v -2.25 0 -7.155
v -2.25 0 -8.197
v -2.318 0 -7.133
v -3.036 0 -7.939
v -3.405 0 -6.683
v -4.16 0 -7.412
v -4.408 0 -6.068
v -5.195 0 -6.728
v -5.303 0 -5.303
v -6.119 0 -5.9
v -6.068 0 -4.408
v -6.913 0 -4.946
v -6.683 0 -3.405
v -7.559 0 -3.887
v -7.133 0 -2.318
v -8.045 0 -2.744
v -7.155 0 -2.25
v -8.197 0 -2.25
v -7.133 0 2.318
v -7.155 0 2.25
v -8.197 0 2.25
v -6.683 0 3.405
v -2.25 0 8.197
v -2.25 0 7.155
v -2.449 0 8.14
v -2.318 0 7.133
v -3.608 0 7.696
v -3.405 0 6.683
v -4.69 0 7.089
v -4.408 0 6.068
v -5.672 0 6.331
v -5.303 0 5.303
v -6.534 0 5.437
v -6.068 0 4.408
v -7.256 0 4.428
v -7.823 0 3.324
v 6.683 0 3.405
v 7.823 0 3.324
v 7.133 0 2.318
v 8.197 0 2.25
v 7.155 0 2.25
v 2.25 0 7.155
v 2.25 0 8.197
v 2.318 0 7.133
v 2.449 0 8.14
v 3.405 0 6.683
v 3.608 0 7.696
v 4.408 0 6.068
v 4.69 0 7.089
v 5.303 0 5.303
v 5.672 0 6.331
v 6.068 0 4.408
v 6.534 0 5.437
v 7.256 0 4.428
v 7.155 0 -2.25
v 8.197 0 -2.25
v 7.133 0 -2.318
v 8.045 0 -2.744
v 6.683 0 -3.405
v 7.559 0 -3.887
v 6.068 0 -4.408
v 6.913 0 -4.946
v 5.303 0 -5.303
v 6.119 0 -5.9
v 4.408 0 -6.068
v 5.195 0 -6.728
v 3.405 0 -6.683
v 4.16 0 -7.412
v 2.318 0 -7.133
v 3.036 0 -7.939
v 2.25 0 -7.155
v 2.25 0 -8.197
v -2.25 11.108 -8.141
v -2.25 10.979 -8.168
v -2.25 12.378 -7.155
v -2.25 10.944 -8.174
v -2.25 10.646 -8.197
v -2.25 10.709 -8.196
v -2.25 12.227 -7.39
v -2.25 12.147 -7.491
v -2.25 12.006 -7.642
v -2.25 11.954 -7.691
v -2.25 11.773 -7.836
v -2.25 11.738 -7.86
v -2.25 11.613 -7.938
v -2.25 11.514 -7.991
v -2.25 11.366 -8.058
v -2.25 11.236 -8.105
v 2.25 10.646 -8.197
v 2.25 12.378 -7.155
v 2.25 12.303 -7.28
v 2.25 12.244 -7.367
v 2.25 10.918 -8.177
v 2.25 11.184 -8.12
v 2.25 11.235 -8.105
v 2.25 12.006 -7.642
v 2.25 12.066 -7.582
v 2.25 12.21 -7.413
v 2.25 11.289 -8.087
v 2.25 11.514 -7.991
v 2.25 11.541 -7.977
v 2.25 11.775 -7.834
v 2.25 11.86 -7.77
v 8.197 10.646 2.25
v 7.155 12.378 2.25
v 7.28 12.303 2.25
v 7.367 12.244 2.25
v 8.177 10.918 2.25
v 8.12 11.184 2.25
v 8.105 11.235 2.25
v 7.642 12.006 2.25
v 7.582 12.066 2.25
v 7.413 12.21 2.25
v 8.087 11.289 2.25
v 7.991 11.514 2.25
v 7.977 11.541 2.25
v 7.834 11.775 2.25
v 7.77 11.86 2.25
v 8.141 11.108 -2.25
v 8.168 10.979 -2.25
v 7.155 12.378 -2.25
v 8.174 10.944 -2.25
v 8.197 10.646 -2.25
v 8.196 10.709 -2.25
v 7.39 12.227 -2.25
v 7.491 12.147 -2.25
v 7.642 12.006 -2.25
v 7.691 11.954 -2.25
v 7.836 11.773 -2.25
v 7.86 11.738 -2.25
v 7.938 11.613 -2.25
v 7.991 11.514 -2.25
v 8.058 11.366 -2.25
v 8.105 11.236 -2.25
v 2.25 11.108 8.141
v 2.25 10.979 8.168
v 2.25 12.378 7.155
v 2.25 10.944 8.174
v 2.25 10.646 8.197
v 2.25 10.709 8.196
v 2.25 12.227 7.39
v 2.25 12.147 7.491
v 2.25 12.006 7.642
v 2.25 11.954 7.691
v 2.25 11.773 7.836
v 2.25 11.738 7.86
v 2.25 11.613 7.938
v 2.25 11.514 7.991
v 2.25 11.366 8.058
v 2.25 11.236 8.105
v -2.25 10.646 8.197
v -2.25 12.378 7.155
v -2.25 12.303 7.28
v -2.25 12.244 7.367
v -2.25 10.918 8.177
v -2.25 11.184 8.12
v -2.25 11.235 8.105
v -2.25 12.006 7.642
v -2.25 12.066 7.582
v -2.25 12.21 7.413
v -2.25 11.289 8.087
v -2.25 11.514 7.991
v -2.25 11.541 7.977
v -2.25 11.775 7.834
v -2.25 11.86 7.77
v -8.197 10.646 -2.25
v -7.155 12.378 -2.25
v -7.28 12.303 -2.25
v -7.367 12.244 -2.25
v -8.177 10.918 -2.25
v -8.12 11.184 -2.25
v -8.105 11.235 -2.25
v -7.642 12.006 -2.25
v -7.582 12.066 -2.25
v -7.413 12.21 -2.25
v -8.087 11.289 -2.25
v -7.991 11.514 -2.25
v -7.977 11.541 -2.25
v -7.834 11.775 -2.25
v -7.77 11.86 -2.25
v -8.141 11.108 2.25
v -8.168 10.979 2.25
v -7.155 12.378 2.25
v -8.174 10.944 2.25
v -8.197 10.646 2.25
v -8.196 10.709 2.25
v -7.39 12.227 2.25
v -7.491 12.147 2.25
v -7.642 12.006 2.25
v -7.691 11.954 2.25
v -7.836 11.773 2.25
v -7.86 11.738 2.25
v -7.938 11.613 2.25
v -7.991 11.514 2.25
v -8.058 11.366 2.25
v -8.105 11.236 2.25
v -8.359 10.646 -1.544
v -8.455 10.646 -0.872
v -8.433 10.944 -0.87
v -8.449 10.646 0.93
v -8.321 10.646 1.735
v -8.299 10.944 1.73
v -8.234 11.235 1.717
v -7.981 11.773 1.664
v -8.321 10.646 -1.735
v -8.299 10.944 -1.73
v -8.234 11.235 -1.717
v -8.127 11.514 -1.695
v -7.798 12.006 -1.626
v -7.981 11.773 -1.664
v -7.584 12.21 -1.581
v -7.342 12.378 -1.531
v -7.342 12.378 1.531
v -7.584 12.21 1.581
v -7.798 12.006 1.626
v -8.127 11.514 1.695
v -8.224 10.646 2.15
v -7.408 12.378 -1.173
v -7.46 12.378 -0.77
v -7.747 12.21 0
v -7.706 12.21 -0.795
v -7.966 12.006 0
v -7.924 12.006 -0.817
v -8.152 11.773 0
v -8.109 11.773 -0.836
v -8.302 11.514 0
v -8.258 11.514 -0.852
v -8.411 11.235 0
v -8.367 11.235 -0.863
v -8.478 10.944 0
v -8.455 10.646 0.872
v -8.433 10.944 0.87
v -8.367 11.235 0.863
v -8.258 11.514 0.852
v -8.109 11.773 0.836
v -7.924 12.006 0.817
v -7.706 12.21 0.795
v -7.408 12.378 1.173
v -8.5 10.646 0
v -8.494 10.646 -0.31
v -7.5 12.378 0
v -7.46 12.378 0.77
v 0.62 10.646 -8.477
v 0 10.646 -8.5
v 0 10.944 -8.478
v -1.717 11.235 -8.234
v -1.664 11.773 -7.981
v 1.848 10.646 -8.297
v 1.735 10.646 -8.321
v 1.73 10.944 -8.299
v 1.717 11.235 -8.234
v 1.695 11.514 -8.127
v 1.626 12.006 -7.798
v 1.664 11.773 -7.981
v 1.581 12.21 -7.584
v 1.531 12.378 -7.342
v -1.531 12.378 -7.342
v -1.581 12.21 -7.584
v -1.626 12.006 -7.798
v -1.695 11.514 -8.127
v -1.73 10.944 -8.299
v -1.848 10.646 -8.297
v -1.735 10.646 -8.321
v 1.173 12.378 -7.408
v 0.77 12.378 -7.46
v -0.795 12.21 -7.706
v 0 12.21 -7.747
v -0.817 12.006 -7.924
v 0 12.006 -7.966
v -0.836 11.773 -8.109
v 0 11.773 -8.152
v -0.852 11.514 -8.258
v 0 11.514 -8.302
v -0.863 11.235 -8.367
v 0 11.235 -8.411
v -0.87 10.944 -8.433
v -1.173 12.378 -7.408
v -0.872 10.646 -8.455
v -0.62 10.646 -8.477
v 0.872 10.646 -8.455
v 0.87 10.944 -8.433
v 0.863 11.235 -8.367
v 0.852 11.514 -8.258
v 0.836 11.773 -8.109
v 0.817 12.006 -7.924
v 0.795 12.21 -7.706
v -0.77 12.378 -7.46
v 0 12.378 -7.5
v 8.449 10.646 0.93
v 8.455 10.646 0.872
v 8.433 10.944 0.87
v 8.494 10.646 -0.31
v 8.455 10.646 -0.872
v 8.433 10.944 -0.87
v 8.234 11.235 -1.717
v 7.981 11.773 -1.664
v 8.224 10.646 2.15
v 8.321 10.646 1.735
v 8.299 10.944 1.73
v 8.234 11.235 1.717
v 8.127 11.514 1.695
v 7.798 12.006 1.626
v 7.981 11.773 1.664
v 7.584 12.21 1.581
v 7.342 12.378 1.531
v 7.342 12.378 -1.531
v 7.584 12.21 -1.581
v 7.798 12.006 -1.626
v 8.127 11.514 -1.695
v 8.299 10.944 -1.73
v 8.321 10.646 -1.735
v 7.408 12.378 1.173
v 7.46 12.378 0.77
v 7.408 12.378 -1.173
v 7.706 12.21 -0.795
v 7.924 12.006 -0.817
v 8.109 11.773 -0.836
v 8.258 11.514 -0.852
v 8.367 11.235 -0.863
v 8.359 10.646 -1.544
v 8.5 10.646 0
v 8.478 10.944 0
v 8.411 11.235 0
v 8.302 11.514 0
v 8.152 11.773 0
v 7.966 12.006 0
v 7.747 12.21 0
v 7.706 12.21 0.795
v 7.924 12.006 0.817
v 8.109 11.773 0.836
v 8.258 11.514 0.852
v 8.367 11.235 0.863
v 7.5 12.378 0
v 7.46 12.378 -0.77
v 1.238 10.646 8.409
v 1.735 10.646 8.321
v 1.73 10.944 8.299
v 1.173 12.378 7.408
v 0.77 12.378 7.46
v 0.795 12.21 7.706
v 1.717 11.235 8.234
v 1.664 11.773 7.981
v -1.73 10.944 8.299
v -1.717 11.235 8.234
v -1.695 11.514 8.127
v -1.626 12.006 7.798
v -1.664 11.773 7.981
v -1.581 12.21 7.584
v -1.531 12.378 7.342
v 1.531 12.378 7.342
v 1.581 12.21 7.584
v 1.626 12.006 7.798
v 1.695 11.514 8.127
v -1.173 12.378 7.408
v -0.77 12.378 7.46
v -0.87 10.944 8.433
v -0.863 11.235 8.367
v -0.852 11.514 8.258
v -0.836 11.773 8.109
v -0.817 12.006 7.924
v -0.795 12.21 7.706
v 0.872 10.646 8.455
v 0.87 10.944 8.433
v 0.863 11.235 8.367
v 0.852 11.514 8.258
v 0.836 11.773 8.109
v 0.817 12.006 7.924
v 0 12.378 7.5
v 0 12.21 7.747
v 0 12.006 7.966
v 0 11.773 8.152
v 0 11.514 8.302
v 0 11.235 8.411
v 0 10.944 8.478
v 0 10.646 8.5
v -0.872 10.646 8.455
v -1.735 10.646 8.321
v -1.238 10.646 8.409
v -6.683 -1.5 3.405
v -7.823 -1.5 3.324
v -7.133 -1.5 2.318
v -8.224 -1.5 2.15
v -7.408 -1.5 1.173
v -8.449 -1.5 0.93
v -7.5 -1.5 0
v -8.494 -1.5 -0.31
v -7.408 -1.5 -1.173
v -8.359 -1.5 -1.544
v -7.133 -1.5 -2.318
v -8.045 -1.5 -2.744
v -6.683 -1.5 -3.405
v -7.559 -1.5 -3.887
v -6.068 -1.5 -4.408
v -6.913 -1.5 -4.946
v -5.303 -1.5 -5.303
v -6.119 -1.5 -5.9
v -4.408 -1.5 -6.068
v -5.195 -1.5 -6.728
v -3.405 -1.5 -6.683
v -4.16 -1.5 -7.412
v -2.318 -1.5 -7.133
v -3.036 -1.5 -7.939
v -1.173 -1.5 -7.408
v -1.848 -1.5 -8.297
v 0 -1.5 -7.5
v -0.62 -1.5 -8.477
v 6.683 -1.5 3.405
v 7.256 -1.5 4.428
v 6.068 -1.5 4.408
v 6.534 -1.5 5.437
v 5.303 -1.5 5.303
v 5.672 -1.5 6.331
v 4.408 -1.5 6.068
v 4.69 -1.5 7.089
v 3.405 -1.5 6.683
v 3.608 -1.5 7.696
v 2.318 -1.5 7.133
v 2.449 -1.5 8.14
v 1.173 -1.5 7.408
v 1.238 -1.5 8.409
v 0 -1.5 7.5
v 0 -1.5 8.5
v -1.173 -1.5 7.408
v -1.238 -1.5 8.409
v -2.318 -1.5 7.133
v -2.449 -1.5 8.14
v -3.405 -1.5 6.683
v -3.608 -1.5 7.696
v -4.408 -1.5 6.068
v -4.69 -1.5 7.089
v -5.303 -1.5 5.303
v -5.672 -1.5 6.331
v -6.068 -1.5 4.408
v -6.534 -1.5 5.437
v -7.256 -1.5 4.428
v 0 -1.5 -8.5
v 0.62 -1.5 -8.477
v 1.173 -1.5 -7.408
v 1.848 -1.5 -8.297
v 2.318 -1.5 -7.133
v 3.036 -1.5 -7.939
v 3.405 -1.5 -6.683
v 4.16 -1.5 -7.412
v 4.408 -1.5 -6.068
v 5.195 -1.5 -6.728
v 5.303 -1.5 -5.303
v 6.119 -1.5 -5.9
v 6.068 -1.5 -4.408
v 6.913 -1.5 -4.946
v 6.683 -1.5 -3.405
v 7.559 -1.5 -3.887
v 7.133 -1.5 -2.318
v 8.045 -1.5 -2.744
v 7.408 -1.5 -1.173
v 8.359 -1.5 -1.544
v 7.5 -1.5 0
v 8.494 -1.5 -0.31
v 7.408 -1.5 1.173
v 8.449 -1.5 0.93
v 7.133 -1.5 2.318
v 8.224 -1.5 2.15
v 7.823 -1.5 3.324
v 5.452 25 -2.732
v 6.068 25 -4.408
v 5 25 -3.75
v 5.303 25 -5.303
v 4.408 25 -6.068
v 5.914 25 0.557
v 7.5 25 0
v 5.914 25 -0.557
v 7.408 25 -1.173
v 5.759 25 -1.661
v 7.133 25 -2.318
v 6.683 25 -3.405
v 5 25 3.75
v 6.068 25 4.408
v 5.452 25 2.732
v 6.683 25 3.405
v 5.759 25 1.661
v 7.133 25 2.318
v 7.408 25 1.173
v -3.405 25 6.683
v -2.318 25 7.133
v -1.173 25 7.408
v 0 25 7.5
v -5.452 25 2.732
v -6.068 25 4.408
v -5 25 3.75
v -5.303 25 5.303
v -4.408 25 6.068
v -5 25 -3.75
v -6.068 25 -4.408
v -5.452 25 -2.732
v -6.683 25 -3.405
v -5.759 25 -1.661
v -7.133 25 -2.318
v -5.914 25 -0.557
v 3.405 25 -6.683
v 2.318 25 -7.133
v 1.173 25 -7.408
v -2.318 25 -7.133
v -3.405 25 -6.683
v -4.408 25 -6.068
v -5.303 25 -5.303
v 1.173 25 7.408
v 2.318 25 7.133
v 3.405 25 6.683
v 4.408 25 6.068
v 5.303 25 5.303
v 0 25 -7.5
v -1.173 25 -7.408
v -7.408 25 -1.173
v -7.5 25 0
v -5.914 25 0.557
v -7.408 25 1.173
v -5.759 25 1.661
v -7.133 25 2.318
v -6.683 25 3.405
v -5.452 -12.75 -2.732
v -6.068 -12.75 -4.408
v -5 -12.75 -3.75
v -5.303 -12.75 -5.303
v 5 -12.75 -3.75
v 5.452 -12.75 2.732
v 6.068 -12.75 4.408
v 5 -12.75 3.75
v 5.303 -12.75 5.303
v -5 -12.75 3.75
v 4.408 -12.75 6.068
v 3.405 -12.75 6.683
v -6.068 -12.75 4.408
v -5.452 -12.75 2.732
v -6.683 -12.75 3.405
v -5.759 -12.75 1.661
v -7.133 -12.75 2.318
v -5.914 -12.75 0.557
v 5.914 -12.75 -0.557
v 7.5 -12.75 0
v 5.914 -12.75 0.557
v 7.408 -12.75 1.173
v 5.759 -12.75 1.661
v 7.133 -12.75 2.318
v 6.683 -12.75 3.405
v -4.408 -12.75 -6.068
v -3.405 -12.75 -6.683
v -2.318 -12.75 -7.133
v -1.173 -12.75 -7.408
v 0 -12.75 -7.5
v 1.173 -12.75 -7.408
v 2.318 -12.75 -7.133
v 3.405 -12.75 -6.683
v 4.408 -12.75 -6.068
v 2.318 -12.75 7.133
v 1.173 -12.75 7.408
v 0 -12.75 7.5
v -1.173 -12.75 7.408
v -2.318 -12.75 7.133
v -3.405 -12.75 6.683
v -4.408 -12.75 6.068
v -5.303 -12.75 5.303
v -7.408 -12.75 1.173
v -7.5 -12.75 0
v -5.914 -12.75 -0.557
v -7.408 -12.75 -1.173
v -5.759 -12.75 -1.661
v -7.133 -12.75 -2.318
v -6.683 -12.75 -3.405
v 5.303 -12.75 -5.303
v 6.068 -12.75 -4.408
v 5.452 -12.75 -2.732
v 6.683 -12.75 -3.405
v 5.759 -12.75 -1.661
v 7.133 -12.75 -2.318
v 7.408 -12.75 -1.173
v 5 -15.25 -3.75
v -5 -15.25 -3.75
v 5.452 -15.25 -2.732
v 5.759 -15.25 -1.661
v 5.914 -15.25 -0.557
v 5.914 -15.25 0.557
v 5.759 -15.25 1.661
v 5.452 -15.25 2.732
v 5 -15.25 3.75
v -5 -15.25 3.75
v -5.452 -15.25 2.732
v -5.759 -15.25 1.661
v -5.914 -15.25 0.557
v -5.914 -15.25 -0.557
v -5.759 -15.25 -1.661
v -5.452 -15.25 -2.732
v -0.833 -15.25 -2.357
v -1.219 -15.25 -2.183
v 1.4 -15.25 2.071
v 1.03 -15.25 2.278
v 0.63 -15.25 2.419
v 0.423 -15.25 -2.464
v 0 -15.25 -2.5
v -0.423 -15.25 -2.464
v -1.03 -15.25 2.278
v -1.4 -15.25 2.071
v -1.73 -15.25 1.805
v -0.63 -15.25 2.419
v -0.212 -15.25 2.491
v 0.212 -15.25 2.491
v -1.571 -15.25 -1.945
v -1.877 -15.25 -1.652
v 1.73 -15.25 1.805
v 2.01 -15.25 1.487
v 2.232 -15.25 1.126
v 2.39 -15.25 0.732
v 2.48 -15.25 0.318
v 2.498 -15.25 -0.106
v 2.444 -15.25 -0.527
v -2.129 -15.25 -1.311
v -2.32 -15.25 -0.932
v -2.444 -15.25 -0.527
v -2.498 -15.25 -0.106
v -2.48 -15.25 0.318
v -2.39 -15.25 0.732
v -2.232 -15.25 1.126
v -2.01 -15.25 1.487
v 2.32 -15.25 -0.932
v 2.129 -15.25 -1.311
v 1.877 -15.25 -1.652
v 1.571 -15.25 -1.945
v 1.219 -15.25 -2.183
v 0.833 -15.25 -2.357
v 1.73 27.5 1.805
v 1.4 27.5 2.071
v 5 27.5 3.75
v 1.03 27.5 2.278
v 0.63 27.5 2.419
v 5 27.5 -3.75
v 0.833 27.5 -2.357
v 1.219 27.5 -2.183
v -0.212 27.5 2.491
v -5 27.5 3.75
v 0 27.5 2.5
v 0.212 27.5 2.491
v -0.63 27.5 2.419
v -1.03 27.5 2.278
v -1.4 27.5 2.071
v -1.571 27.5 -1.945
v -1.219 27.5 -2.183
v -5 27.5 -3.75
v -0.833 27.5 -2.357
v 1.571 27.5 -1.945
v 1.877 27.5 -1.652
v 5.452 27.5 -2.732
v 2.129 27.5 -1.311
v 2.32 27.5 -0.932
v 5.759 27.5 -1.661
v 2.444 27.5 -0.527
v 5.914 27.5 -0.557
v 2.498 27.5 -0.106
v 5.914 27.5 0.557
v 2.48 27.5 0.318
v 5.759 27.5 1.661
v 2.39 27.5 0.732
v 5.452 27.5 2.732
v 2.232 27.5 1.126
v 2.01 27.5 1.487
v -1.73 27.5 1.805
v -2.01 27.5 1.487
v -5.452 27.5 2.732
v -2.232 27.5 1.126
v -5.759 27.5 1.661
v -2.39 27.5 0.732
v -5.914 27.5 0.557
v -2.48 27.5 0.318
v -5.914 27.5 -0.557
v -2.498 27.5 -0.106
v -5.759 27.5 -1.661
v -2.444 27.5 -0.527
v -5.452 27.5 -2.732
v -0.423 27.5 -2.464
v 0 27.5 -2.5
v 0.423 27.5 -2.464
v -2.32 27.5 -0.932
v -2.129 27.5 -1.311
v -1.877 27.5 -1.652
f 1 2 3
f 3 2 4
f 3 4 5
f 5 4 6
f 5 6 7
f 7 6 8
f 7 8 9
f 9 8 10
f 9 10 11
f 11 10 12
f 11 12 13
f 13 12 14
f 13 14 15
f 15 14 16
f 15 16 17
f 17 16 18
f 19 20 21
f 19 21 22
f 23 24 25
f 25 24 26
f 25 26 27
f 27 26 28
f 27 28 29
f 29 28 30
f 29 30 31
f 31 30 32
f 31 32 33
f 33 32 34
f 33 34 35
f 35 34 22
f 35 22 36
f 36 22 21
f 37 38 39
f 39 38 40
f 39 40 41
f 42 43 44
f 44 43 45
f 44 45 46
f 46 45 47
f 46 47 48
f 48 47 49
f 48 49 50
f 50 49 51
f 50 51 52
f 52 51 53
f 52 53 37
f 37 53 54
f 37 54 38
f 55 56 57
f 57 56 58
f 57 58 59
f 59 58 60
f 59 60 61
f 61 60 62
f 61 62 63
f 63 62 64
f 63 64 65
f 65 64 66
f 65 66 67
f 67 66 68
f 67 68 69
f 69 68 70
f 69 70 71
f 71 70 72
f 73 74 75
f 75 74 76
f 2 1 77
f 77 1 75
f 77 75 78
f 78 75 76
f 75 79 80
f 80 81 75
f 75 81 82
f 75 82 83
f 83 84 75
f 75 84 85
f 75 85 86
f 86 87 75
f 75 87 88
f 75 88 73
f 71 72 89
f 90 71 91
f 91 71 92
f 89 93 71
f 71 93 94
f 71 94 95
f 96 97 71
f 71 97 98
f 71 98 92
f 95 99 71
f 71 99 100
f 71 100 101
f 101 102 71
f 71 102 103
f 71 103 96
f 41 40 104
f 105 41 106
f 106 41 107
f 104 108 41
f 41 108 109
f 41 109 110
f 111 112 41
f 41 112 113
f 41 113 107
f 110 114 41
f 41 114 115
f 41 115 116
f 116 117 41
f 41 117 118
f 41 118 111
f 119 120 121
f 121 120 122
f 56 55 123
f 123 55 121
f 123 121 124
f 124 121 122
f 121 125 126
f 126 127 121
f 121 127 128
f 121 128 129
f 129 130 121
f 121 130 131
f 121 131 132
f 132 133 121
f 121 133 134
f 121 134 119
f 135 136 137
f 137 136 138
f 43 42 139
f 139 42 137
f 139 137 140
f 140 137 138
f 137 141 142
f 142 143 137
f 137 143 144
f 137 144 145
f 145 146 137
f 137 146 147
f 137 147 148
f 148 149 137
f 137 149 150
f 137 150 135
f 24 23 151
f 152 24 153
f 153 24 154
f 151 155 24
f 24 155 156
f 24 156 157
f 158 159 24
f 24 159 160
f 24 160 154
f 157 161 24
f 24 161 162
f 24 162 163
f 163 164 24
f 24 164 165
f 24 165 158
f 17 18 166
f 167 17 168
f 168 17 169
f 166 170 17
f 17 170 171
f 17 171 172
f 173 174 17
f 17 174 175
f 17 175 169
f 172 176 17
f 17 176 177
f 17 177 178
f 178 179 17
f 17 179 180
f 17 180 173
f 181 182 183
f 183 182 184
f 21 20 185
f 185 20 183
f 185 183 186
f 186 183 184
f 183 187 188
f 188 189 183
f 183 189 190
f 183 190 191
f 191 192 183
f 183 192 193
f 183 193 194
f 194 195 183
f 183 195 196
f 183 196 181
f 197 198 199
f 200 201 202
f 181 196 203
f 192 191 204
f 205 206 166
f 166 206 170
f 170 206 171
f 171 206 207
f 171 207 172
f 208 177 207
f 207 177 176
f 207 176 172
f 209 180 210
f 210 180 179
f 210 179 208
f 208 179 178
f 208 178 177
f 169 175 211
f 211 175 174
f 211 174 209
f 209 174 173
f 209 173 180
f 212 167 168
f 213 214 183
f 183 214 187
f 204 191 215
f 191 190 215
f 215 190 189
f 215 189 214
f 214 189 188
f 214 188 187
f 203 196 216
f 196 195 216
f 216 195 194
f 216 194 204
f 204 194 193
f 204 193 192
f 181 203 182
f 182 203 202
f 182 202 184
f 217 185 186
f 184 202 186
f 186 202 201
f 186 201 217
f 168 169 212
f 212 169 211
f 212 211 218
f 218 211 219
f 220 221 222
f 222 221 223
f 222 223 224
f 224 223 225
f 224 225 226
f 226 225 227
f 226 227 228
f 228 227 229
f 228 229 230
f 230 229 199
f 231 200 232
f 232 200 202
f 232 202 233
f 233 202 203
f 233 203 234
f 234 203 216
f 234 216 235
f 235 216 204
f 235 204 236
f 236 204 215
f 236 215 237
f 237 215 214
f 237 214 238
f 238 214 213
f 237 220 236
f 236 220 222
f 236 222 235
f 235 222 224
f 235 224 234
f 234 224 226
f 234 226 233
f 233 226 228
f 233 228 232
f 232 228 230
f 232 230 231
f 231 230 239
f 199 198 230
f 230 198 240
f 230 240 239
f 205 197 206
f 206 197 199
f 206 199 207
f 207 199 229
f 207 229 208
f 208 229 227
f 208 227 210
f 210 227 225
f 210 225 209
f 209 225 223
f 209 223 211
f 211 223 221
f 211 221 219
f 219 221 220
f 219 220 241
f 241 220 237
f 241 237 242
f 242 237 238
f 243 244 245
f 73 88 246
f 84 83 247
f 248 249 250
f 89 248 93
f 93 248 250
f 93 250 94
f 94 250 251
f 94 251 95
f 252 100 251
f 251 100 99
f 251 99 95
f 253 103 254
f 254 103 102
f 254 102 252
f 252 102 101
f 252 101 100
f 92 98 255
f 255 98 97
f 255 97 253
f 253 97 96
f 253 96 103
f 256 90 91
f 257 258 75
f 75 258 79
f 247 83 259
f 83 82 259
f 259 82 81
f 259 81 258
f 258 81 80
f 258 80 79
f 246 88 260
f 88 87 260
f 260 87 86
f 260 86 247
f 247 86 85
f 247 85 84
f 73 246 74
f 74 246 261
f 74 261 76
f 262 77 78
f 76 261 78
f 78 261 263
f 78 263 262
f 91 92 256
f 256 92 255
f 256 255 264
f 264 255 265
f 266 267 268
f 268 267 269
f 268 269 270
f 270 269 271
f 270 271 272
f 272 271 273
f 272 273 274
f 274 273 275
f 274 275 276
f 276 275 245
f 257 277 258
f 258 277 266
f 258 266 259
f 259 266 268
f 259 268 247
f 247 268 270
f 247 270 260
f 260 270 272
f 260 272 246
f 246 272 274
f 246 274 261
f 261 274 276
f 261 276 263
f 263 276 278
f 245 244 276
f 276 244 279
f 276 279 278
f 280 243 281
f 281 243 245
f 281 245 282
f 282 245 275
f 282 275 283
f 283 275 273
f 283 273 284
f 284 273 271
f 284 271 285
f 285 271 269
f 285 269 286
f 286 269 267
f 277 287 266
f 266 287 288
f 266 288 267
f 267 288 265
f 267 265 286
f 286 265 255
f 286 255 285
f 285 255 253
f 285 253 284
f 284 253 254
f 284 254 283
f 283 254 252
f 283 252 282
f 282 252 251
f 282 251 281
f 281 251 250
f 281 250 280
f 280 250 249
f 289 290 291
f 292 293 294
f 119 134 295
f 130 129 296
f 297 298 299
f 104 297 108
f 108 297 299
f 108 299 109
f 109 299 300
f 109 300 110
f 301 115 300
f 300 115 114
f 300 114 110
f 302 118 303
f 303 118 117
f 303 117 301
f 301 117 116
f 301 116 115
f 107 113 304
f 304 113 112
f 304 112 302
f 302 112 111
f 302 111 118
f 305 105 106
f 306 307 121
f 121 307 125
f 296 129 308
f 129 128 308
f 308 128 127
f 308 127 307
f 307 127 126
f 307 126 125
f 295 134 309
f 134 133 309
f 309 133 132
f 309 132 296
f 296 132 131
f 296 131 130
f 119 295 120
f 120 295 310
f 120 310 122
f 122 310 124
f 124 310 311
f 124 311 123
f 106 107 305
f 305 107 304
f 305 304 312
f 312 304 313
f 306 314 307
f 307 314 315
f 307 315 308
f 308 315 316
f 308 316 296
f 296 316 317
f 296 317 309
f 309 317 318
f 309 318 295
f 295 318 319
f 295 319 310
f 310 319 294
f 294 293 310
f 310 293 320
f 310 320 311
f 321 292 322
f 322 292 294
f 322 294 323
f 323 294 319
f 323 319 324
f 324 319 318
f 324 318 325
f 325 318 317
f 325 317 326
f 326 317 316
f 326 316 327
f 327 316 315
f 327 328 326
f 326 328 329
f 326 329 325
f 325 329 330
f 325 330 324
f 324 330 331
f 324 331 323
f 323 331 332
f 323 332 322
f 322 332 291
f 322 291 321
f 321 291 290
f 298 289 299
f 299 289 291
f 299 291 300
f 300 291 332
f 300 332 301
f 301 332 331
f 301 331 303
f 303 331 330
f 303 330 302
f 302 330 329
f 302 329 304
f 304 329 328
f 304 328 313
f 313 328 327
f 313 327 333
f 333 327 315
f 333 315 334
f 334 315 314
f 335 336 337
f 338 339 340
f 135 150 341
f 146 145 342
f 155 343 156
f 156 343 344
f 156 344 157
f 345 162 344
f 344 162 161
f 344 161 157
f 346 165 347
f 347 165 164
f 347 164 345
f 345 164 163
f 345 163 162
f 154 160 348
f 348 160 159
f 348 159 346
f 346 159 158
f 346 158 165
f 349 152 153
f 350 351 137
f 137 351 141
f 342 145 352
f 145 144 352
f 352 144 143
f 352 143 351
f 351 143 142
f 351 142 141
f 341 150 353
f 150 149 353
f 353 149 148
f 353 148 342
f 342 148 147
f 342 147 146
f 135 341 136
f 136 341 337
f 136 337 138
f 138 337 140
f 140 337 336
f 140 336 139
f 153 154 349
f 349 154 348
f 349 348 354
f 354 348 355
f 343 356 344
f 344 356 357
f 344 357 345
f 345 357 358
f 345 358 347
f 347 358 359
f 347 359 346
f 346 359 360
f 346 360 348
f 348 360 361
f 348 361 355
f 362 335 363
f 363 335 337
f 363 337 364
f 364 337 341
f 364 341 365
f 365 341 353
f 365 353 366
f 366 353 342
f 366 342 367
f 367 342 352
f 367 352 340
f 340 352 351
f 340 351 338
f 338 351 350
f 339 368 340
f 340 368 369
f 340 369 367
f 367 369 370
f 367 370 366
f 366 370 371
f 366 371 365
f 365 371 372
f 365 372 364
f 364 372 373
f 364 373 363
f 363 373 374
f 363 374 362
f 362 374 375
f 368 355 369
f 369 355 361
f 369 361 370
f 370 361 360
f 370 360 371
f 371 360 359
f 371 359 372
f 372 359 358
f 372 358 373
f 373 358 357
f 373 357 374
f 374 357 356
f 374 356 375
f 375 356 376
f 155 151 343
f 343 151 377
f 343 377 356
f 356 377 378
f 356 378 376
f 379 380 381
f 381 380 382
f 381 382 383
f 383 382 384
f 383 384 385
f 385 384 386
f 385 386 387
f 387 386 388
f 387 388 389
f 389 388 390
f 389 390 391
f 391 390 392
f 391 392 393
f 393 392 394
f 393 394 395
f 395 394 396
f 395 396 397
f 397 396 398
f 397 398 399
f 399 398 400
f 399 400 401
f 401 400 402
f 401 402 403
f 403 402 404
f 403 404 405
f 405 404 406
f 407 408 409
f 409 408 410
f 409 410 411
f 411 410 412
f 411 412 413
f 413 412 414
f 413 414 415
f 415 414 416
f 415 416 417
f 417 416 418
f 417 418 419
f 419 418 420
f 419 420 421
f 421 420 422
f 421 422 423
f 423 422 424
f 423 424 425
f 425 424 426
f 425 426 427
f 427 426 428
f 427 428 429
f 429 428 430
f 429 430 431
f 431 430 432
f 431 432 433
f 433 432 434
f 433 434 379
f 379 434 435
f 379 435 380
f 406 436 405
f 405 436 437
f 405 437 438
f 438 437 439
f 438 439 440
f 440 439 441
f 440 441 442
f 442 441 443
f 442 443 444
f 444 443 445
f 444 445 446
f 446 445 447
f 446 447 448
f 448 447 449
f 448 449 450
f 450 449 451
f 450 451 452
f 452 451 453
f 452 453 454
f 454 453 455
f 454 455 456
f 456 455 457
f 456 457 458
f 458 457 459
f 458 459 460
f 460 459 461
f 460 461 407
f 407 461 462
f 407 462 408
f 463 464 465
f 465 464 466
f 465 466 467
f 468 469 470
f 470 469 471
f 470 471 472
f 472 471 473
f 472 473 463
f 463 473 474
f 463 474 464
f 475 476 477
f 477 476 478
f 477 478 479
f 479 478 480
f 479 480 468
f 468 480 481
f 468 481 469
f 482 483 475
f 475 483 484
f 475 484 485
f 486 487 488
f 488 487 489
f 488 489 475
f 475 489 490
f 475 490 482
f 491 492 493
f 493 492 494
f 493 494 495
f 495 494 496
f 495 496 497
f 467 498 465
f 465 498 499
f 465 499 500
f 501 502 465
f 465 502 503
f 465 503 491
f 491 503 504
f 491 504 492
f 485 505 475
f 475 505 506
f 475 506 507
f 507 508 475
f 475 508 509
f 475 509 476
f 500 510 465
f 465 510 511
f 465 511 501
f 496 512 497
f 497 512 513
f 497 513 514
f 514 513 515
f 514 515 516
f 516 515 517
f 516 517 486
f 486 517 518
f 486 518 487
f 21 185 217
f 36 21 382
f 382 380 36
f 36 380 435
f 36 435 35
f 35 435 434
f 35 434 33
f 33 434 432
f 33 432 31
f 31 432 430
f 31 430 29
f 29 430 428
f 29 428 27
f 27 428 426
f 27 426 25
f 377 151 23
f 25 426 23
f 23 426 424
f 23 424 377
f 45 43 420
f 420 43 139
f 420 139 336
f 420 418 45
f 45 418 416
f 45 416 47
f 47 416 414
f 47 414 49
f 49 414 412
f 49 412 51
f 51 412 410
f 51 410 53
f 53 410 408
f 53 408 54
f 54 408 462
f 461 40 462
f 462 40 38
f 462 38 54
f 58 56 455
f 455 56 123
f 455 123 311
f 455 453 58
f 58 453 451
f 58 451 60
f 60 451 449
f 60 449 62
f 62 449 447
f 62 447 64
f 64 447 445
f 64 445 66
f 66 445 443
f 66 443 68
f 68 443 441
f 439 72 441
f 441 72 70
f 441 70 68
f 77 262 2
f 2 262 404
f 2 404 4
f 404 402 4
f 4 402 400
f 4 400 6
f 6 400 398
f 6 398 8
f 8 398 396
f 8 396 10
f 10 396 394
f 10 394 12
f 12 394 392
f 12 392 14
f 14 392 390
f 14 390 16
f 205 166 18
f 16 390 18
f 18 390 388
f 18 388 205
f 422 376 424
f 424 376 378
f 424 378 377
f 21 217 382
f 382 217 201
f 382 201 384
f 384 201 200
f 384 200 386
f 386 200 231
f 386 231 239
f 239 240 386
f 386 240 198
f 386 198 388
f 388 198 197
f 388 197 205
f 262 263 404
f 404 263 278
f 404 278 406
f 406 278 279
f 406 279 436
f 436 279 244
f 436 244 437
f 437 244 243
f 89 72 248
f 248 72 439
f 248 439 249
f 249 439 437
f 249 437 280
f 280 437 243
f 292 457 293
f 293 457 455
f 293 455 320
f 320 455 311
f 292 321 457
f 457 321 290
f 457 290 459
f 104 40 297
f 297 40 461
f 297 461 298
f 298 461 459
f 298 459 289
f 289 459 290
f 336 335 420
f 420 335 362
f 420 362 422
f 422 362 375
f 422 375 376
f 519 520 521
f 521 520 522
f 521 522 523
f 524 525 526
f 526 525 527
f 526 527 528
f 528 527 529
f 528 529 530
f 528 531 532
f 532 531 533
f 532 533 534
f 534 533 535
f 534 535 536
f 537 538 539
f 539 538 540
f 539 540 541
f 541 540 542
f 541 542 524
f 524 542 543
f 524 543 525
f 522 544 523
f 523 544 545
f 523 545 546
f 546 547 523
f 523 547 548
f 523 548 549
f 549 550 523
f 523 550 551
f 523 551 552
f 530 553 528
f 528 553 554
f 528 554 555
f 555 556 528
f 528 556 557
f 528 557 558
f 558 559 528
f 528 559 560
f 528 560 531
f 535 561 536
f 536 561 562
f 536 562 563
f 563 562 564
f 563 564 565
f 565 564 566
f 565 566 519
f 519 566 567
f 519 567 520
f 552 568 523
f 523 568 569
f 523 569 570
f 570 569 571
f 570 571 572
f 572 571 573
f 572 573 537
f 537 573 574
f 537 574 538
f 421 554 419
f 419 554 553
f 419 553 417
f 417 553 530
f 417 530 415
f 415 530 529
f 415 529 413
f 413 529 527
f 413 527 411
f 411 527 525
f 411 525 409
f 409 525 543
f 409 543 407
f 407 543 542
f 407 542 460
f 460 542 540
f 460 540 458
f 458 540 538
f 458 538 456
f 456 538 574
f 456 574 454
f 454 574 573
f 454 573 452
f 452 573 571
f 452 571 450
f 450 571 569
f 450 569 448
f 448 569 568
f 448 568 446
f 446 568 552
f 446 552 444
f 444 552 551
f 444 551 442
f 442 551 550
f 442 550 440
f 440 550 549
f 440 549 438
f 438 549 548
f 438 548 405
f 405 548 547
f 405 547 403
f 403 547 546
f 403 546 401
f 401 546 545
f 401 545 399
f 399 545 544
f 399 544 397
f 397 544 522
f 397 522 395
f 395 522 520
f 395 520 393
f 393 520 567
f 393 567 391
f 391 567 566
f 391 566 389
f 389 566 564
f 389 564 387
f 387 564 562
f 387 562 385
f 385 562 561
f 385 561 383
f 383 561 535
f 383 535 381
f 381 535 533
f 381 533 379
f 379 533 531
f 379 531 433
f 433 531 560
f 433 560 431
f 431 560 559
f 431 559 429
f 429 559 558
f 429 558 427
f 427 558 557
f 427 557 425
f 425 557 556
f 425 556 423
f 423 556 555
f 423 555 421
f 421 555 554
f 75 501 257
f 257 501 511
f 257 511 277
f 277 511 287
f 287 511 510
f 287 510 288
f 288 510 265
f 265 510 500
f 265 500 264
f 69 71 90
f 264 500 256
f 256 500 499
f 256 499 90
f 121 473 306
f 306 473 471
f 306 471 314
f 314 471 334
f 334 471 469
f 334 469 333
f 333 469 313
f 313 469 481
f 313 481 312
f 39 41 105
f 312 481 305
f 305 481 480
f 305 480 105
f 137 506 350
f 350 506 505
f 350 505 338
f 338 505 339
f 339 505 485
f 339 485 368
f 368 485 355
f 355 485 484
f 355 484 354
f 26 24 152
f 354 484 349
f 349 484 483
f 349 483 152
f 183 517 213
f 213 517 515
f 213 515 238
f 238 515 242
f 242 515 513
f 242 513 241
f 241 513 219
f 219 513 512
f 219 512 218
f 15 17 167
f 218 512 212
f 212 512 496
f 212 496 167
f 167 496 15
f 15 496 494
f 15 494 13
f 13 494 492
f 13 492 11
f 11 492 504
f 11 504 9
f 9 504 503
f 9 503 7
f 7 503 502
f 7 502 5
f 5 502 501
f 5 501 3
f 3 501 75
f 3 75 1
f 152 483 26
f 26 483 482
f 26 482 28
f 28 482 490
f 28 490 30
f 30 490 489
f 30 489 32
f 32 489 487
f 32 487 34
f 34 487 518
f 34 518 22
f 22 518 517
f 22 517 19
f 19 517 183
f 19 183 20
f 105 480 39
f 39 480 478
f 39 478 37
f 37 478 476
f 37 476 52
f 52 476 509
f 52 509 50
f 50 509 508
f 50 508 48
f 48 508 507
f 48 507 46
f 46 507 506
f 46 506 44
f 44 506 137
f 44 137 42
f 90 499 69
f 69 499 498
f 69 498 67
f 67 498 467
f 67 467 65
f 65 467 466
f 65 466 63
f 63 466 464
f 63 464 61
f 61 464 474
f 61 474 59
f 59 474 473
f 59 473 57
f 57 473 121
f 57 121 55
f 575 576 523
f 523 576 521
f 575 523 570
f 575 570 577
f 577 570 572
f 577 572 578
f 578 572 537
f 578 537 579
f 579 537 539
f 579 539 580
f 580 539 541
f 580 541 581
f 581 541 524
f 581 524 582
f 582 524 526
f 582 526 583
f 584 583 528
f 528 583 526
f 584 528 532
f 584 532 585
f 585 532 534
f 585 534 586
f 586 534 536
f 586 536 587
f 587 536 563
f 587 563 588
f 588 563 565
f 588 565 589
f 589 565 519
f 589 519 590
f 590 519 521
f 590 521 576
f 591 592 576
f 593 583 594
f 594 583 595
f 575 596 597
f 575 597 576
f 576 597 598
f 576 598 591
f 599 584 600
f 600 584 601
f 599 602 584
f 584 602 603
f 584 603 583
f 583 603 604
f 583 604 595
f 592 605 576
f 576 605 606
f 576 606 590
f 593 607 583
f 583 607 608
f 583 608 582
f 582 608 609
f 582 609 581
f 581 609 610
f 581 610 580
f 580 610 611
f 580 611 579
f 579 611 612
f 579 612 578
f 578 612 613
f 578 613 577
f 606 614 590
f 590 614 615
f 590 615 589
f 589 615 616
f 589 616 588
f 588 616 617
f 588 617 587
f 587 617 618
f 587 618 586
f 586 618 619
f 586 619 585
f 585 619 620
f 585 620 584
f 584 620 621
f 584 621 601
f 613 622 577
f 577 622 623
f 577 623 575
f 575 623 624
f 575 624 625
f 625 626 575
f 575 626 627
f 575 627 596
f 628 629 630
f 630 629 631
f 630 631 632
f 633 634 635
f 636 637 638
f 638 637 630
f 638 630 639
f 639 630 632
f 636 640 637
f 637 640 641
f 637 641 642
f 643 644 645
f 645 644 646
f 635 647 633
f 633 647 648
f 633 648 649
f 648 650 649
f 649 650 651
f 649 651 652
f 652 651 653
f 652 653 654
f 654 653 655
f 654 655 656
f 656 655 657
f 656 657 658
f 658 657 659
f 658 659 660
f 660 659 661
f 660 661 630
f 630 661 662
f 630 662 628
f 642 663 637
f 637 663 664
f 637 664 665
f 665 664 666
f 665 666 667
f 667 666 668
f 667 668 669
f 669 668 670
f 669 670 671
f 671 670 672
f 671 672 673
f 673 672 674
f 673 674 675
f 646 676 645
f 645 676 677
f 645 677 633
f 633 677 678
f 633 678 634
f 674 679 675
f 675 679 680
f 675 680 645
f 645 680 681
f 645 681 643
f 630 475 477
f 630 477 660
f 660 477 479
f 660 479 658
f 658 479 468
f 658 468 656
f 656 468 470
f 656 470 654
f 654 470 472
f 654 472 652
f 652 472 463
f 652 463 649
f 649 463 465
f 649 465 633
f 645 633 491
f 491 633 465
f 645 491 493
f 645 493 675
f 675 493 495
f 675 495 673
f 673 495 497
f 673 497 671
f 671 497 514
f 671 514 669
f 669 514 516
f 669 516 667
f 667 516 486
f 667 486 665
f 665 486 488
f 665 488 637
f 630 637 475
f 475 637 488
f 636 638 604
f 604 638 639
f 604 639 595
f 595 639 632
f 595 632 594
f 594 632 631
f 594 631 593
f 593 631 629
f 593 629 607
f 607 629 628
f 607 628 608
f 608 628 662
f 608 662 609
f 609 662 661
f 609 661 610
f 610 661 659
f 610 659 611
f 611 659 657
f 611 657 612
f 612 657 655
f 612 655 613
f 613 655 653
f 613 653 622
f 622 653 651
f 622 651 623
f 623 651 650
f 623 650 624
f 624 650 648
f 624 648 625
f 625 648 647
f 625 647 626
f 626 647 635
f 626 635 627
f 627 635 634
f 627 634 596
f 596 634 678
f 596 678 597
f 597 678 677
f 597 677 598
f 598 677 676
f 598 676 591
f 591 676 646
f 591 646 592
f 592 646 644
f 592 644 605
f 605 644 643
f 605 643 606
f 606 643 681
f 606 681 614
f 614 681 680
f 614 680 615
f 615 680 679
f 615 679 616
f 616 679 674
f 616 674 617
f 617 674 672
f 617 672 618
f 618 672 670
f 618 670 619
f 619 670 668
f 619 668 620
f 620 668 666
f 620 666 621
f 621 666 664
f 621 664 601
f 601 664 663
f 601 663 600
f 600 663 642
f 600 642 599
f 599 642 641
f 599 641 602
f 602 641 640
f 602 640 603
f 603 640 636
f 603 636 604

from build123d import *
from build123d.topology import SkipClean

# Parameters (mm, degrees)
SKETCH1_R            = 7.25
BOSS_EXTRUDE1_DEPTH  = 25
SKETCH2_R            = 2.1
BOSS_EXTRUDE2_DEPTH  = 2.5
SKETCH4_R            = 8.5
BOSS_EXTRUDE3_DEPTH  = 1.5
BOSS_EXTRUDE5_DEPTH  = 12.5
FILLET2_R            = 2
BOSS_EXTRUDE6_START  = 11.25
SKETCH6_R            = 7.25
BOSS_EXTRUDE6_DEPTH  = 11.25
BOSS_EXTRUDE7_START  = 2.5
SKETCH7_R            = 2.1
BOSS_EXTRUDE7_DEPTH  = 2.5
SKETCH8_R            = 2.1
CUT_EXTRUDE1_DEPTH   = 53.5
BOSS_EXTRUDE8_START  = 11.25
SKETCH9_R            = 7.5
SKETCH9_R_2          = 7.25
BOSS_EXTRUDE8_DEPTH  = 11.25
SKETCH10_R           = 7.5
SKETCH10_R_2         = 7.25
BOSS_EXTRUDE9_DEPTH  = 25
SKETCH11_R           = 2.15
CUT_EXTRUDE2_DEPTH   = 50
SKETCH12_R           = 6.607325953
CUT_EXTRUDE3_DEPTH   = 2.5
SKETCH13_R           = 6.756490311
CUT_EXTRUDE4_DEPTH   = 2.5
SKETCH14_W           = 10
SKETCH14_H           = 7.5
SKETCH14_R           = 2.15
BOSS_EXTRUDE10_DEPTH = 2.5
BOSS_EXTRUDE11_START = 2.5
SKETCH15_R           = 2.5
BOSS_EXTRUDE11_DEPTH = 2.5
SKETCH16_R           = 2.5
CUT_EXTRUDE5_DEPTH   = 61.5


with BuildPart() as part:
    # Sketch1 → Boss-Extrude1 (new body)
    with BuildSketch(Plane(origin=(0, 0, 0), x_dir=(1, 0, 0), z_dir=(0, 1, 0))):
        with Locations(Location((0, 0, 0), (0, 0, 270))):
            Circle(SKETCH1_R)
    extrude(amount=BOSS_EXTRUDE1_DEPTH)

    # Sketch2 → Boss-Extrude2 (add)
    with BuildSketch(Plane(origin=(0, 25, 0), x_dir=(1, 0, 0), z_dir=(0, 1, 0))):
        with BuildLine():
            Line((-4.9, -3.65), (4.9, -3.65))
            ThreePointArc((4.9, -3.65), (5.781186897, 0), (4.9, 3.65))
            Line((4.9, 3.65), (-4.9, 3.65))
            ThreePointArc((-4.9, 3.65), (-5.781186897, 0), (-4.9, -3.65))
        make_face()
        with Locations(Location((0, 0, 0), (0, 0, 270))):
            Circle(SKETCH2_R, mode=Mode.SUBTRACT)
    extrude(amount=BOSS_EXTRUDE2_DEPTH)

    # Sketch4 → Boss-Extrude3 (add)
    with BuildSketch(Plane(origin=(0, 0, 0), x_dir=(-1, 0, 0), z_dir=(0, -1, 0))):
        with Locations(Location((0, 0, 0), (0, 0, 90))):
            Circle(SKETCH4_R)
    extrude(amount=BOSS_EXTRUDE3_DEPTH)

    # Sketch5 → Boss-Extrude5 (add)
    with SkipClean():  # the faces are left unmerged after this step: merging them gives an invalid solid
        with BuildSketch(Plane(origin=(0, 0, 0), x_dir=(1, 0, 0), z_dir=(0, 1, 0))):
            with BuildLine():
                Line((-2.25, 8.196798155), (-2.25, 6.892024376))
                ThreePointArc((-2.25, 6.892024376), (0, 7.25), (2.25, 6.892024376))
                Line((2.25, 6.892024376), (2.25, 8.196798155))
                ThreePointArc((2.25, 8.196798155), (0, 8.5), (-2.25, 8.196798155))
            make_face()
            with BuildLine():
                Line((6.892024376, 2.25), (8.196798155, 2.25))
                ThreePointArc((8.196798155, 2.25), (8.5, 0), (8.196798155, -2.25))
                Line((8.196798155, -2.25), (6.892024376, -2.25))
                ThreePointArc((6.892024376, -2.25), (7.25, 0), (6.892024376, 2.25))
            make_face()
            with BuildLine():
                Line((2.25, -8.196798155), (2.25, -6.892024376))
                ThreePointArc((2.25, -6.892024376), (0, -7.25), (-2.25, -6.892024376))
                Line((-2.25, -6.892024376), (-2.25, -8.196798155))
                ThreePointArc((-2.25, -8.196798155), (0, -8.5), (2.25, -8.196798155))
            make_face()
            with BuildLine():
                Line((-6.892024376, -2.25), (-8.196798155, -2.25))
                ThreePointArc((-8.196798155, -2.25), (-8.5, 0), (-8.196798155, 2.25))
                Line((-8.196798155, 2.25), (-6.892024376, 2.25))
                ThreePointArc((-6.892024376, 2.25), (-7.25, 0), (-6.892024376, -2.25))
            make_face()
        extrude(amount=BOSS_EXTRUDE5_DEPTH)

    # Fillet2
    # the kernel refuses this fillet: 2 mm, written as the material it takes off along each edge
    with BuildSketch(Plane(origin=(0, 12.5, 0), x_dir=(-0.6871531367836845, 0, 0.72651260595281), z_dir=(0.72651260595281, 0, 0.6871531367836845))) as fillet2_piece_1:
        with BuildLine():
            CenterArc((6.5, 1.854049622), FILLET2_R, 292.024312837, 67.975687163)
            Line((7.25, 0), (7.265, -0.037080992))
            ThreePointArc((7.265, -0.037080992), (7.875, -0.04), (8.5, -0.04))
            Line((8.5, -0.04), (8.54, 0))
            Line((8.54, 0), (8.54, 1.854049622))
            Line((8.54, 1.854049622), (8.5, 1.854049622))
        make_face()
    revolve(axis=Axis((0, 12.5, 0), (0, -1, 0)), revolution_arc=93.189649372, mode=Mode.SUBTRACT)
    with BuildSketch(Plane(origin=(0, 12.5, 0), x_dir=(0.7265126059528094, 0, -0.687153136783685), z_dir=(0.687153136783685, 0, 0.7265126059528094))) as fillet2_piece_2:
        with BuildLine():
            CenterArc((6.5, -1.854049622), FILLET2_R, 0, 67.975687163)
            Line((7.25, 0), (7.265, 0.037080992))
            ThreePointArc((7.265, 0.037080992), (7.875, 0.04), (8.5, 0.04))
            Line((8.5, 0.04), (8.54, 0))
            Line((8.54, 0), (8.54, -1.854049622))
            Line((8.54, -1.854049622), (8.5, -1.854049622))
        make_face()
    revolve(axis=Axis((0, 12.5, 0), (0, 1, 0)), revolution_arc=93.189649372, mode=Mode.SUBTRACT)
    with BuildSketch(Plane(origin=(0, 12.5, 0), x_dir=(0.687153136783685, 0, -0.7265126059528094), z_dir=(-0.7265126059528094, 0, -0.687153136783685))) as fillet2_piece_3:
        with BuildLine():
            CenterArc((6.5, 1.854049622), FILLET2_R, 292.024312837, 67.975687163)
            Line((7.25, 0), (7.265, -0.037080992))
            ThreePointArc((7.265, -0.037080992), (7.875, -0.04), (8.5, -0.04))
            Line((8.5, -0.04), (8.54, 0))
            Line((8.54, 0), (8.54, 1.854049622))
            Line((8.54, 1.854049622), (8.5, 1.854049622))
        make_face()
    revolve(axis=Axis((0, 12.5, 0), (0, -1, 0)), revolution_arc=93.189649372, mode=Mode.SUBTRACT)
    with BuildSketch(Plane(origin=(0, 12.5, 0), x_dir=(-0.7265126059528072, 0, 0.6871531367836876), z_dir=(-0.6871531367836876, 0, -0.7265126059528072))) as fillet2_piece_4:
        with BuildLine():
            CenterArc((6.5, -1.854049622), FILLET2_R, 0, 67.975687163)
            Line((7.25, 0), (7.265, 0.037080992))
            ThreePointArc((7.265, 0.037080992), (7.875, 0.04), (8.5, 0.04))
            Line((8.5, 0.04), (8.54, 0))
            Line((8.54, 0), (8.54, -1.854049622))
            Line((8.54, -1.854049622), (8.5, -1.854049622))
        make_face()
    revolve(axis=Axis((0, 12.5, 0), (0, 1, 0)), revolution_arc=93.189649372, mode=Mode.SUBTRACT)

    # Sketch6 → Boss-Extrude6 (add)
    with BuildSketch(Plane(origin=(0, -1.5, 0), x_dir=(-1, 0, 0), z_dir=(0, -1, 0)).offset(BOSS_EXTRUDE6_START)):
        with Locations(Location((0, 0, 0), (0, 0, 108.080012624))):
            Circle(SKETCH6_R)
    extrude(amount=-BOSS_EXTRUDE6_DEPTH)

    # Sketch7 → Boss-Extrude7 (add)
    with BuildSketch(Plane(origin=(0, -12.75, 0), x_dir=(-1, 0, 0), z_dir=(0, -1, 0)).offset(BOSS_EXTRUDE7_START)):
        with BuildLine():
            Line((4.9, 3.65), (-4.9, 3.65))
            ThreePointArc((-4.9, 3.65), (-5.781186897, 0), (-4.9, -3.65))
            Line((-4.9, -3.65), (4.9, -3.65))
            ThreePointArc((4.9, -3.65), (5.781186897, 0), (4.9, 3.65))
        make_face()
        with Locations(Location((0, 0, 0), (0, 0, 270))):
            Circle(SKETCH7_R, mode=Mode.SUBTRACT)
    extrude(amount=-BOSS_EXTRUDE7_DEPTH)

    # Sketch8 → Cut-Extrude1 (cut)
    with BuildSketch(Plane(origin=(0, -12.75, 0), x_dir=(-1, 0, 0), z_dir=(0, -1, 0))):
        with Locations(Location((0, 0, 0), (0, 0, 90))):
            Circle(SKETCH8_R)
    extrude(amount=-CUT_EXTRUDE1_DEPTH, mode=Mode.SUBTRACT)

    # Sketch9 → Boss-Extrude8 (add)
    with BuildSketch(Plane.XZ.offset(1.5).offset(BOSS_EXTRUDE8_START)):
        with Locations(Location((0, 0, 0), (0, 0, 270))):
            Circle(SKETCH9_R)
        with Locations(Location((0, 0, 0), (0, 0, 288.080012624))):
            Circle(SKETCH9_R_2, mode=Mode.SUBTRACT)
    extrude(amount=-BOSS_EXTRUDE8_DEPTH)

    # Sketch10 → Boss-Extrude9 (add)
    with BuildSketch(Plane(origin=(0, 0, 0), x_dir=(1, 0, 0), z_dir=(0, 1, 0))):
        with Locations(Location((0, 0, 0), (0, 0, 90))):
            Circle(SKETCH10_R)
        Circle(SKETCH10_R_2, mode=Mode.SUBTRACT)
    extrude(amount=BOSS_EXTRUDE9_DEPTH)

    # Sketch11 → Cut-Extrude2 (cut)
    with BuildSketch(Plane(origin=(0, 27.5, 0), x_dir=(1, 0, 0), z_dir=(0, 1, 0))):
        with Locations(Location((0, 0, 0), (0, 0, 270))):
            Circle(SKETCH11_R)
    extrude(amount=-CUT_EXTRUDE2_DEPTH, mode=Mode.SUBTRACT)

    # Sketch12 → Cut-Extrude3 (cut)
    with BuildSketch(Plane(origin=(0, -15.25, 0), x_dir=(-1, 0, 0), z_dir=(0, -1, 0))):
        Circle(SKETCH12_R)
    extrude(amount=-CUT_EXTRUDE3_DEPTH, mode=Mode.SUBTRACT)

    # Sketch13 → Cut-Extrude4 (cut)
    with BuildSketch(Plane(origin=(0, 27.5, 0), x_dir=(1, 0, 0), z_dir=(0, 1, 0))):
        Circle(SKETCH13_R)
    extrude(amount=-CUT_EXTRUDE4_DEPTH, mode=Mode.SUBTRACT)

    # Sketch14 → Boss-Extrude10 (add)
    # profile 1 of 3: a face of its own
    with BuildSketch(Plane(origin=(0, -12.75, 0), x_dir=(-1, 0, 0), z_dir=(0, -1, 0))):
        Rectangle(SKETCH14_W, SKETCH14_H)
        with Locations(Location((0, 0, 0), (0, 0, 270))):
            Circle(SKETCH14_R, mode=Mode.SUBTRACT)
    # profile 2 of 3: a face of its own
    with BuildSketch(Plane(origin=(0, -12.75, 0), x_dir=(-1, 0, 0), z_dir=(0, -1, 0))):
        with BuildLine():
            Line((5, 3.75), (5, -3.75))
            ThreePointArc((5, -3.75), (5.933352987, 0), (5, 3.75))
        make_face()
    # profile 3 of 3: a face of its own
    with BuildSketch(Plane(origin=(0, -12.75, 0), x_dir=(-1, 0, 0), z_dir=(0, -1, 0))):
        with BuildLine():
            ThreePointArc((-5, -3.75), (-5.933352987, 0), (-5, 3.75))
            Line((-5, 3.75), (-5, -3.75))
        make_face()
    extrude(amount=BOSS_EXTRUDE10_DEPTH)

    # Sketch15 → Boss-Extrude11 (add)
    with BuildSketch(Plane(origin=(0, 25, 0), x_dir=(1, 0, 0), z_dir=(0, 1, 0)).offset(BOSS_EXTRUDE11_START)):
        with BuildLine():
            Line((-5, -3.75), (5, -3.75))
            ThreePointArc((5, -3.75), (5.933352987, 0), (5, 3.75))
            Line((5, 3.75), (-5, 3.75))
            ThreePointArc((-5, 3.75), (-5.933352987, 0), (-5, -3.75))
        make_face()
        with Locations(Location((0, 0, 0), (0, 0, 270))):
            Circle(SKETCH15_R, mode=Mode.SUBTRACT)
    extrude(amount=-BOSS_EXTRUDE11_DEPTH)

    # Sketch16 → Cut-Extrude5 (cut)
    with BuildSketch(Plane(origin=(0, 25, 0), x_dir=(1, 0, 0), z_dir=(0, 1, 0))):
        with Locations(Location((0, 0, 0), (0, 0, 90))):
            Circle(SKETCH16_R)
    extrude(amount=-CUT_EXTRUDE5_DEPTH, mode=Mode.SUBTRACT)


solid = part.part
